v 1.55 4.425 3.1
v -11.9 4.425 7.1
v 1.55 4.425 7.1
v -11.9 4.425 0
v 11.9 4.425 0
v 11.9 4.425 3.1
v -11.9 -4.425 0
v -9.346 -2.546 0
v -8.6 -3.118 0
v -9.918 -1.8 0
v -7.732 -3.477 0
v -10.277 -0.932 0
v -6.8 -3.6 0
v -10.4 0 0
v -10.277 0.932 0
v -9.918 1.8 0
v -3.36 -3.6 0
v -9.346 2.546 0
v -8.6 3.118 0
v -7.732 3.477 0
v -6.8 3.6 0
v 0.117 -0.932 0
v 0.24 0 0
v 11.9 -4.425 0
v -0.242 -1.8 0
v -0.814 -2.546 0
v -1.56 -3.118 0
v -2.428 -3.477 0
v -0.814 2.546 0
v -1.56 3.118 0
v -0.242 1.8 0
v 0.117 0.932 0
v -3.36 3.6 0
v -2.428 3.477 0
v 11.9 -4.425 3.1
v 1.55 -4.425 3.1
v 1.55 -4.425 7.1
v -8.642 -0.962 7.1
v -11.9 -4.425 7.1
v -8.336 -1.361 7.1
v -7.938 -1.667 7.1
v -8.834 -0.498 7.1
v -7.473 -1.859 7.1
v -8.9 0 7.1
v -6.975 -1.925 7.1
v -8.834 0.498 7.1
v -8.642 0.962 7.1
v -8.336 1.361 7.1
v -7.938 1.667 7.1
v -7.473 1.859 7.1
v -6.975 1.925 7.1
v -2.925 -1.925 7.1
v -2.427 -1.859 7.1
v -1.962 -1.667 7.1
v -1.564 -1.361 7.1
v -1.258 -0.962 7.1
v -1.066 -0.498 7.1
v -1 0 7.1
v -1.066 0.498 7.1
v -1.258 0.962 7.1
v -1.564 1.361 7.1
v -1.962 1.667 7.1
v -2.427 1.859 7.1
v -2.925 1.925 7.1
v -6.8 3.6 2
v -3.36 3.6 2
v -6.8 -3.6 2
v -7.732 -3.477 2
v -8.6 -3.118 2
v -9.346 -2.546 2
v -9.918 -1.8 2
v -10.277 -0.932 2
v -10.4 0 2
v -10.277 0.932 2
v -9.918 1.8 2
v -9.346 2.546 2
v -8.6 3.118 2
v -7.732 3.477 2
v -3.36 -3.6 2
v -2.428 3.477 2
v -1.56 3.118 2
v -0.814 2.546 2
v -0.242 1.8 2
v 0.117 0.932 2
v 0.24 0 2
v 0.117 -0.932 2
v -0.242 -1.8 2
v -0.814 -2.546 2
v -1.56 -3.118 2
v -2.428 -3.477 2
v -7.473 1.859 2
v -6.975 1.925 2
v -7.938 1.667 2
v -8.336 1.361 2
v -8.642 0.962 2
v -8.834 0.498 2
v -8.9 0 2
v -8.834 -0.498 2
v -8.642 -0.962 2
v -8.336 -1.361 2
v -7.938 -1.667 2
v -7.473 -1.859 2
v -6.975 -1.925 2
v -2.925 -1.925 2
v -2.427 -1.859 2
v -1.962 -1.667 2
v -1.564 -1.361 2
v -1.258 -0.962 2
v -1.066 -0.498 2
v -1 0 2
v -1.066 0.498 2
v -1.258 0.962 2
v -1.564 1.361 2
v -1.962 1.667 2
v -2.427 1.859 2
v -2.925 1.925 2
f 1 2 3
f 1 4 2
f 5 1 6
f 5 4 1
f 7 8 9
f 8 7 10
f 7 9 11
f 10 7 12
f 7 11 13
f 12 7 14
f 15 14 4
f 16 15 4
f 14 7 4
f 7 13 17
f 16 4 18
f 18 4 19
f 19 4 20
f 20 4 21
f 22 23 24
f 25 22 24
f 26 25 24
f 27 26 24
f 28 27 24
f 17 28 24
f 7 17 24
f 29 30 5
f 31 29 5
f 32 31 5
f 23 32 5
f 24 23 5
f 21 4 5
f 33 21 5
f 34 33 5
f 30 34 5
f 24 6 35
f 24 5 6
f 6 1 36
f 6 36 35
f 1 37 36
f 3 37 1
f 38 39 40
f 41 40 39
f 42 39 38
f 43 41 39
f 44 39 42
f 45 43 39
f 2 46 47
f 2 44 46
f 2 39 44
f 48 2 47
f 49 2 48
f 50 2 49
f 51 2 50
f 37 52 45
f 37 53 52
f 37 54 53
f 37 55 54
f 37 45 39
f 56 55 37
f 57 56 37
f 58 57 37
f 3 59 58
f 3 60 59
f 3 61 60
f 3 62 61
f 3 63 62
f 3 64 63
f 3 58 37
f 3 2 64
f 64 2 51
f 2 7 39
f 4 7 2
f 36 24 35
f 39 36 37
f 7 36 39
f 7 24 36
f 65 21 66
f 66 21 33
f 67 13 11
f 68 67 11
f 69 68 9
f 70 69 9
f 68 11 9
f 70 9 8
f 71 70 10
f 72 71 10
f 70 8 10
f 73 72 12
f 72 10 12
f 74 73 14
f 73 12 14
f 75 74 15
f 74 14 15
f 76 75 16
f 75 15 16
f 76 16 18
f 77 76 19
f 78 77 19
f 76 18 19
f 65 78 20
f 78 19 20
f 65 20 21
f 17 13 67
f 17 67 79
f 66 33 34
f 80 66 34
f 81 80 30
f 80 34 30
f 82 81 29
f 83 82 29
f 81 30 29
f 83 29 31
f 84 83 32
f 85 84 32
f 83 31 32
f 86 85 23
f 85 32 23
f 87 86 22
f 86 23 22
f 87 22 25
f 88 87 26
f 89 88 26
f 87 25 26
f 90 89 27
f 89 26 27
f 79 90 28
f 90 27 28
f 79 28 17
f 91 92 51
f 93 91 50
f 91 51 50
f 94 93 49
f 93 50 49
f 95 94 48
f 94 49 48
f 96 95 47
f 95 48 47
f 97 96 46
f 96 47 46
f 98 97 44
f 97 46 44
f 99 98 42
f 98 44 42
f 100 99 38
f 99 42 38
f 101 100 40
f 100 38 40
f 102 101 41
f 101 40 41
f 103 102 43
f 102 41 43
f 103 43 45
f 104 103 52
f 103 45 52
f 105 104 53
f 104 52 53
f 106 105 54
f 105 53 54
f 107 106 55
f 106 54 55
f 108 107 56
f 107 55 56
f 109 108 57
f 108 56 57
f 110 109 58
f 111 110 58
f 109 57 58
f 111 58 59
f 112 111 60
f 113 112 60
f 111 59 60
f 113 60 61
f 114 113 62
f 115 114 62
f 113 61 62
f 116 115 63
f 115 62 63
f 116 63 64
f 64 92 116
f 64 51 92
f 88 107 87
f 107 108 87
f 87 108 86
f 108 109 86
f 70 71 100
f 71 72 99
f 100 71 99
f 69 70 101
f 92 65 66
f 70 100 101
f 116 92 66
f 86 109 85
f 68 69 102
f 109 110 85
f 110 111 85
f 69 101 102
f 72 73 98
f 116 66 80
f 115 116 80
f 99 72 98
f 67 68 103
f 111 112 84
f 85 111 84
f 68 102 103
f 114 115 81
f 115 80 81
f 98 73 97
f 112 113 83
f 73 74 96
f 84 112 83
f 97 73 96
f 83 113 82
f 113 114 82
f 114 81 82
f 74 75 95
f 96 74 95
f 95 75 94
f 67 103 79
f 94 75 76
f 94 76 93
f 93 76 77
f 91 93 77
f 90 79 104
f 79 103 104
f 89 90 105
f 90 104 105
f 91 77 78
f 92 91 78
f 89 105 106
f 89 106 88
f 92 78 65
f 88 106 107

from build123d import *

# Parameters (mm, degrees)
SKETCH_W        = 23.8
SKETCH_H        = 8.85
PAD_DEPTH       = 7.1
SKETCH001_W     = 10.35
SKETCH001_H     = 8.85
POCKET_DEPTH    = 4
POCKET001_DEPTH = 7.101
POCKET002_DEPTH = 2


with BuildPart() as part:
    # Sketch → Pad (new body)
    with BuildSketch(Plane.XY):
        Rectangle(SKETCH_W, SKETCH_H)
    extrude(amount=PAD_DEPTH)

    # Sketch001 → Pocket (cut)
    with BuildSketch(Plane.XY.offset(7.1)):
        with Locations((6.725, 0)):
            Rectangle(SKETCH001_W, SKETCH001_H)
    extrude(amount=-POCKET_DEPTH, mode=Mode.SUBTRACT)

    # Sketch002 → Pocket001 (cut, through all)
    with BuildSketch(Plane.XY.offset(7.1)):
        with BuildLine():
            ThreePointArc((-6.975, 1.925), (-8.9, 0), (-6.975, -1.925))
            Line((-6.975, -1.925), (-2.925, -1.925))
            ThreePointArc((-2.925, -1.925), (-1, 0), (-2.925, 1.925))
            Line((-6.975, 1.925), (-2.925, 1.925))
        make_face()
    extrude(amount=-POCKET001_DEPTH, mode=Mode.SUBTRACT)

    # Sketch003 → Pocket002 (cut)
    with BuildSketch(Plane(origin=(0, 0, 0), x_dir=(1, 0, 0), z_dir=(0, 0, -1))):
        with BuildLine():
            ThreePointArc((-6.8, 3.6), (-10.4, 0), (-6.8, -3.6))
            Line((-6.8, -3.6), (-3.36, -3.6))
            ThreePointArc((-3.36, -3.6), (0.24, 0), (-3.36, 3.6))
            Line((-6.8, 3.6), (-3.36, 3.6))
        make_face()
    extrude(amount=-POCKET002_DEPTH, mode=Mode.SUBTRACT)


solid = part.part
